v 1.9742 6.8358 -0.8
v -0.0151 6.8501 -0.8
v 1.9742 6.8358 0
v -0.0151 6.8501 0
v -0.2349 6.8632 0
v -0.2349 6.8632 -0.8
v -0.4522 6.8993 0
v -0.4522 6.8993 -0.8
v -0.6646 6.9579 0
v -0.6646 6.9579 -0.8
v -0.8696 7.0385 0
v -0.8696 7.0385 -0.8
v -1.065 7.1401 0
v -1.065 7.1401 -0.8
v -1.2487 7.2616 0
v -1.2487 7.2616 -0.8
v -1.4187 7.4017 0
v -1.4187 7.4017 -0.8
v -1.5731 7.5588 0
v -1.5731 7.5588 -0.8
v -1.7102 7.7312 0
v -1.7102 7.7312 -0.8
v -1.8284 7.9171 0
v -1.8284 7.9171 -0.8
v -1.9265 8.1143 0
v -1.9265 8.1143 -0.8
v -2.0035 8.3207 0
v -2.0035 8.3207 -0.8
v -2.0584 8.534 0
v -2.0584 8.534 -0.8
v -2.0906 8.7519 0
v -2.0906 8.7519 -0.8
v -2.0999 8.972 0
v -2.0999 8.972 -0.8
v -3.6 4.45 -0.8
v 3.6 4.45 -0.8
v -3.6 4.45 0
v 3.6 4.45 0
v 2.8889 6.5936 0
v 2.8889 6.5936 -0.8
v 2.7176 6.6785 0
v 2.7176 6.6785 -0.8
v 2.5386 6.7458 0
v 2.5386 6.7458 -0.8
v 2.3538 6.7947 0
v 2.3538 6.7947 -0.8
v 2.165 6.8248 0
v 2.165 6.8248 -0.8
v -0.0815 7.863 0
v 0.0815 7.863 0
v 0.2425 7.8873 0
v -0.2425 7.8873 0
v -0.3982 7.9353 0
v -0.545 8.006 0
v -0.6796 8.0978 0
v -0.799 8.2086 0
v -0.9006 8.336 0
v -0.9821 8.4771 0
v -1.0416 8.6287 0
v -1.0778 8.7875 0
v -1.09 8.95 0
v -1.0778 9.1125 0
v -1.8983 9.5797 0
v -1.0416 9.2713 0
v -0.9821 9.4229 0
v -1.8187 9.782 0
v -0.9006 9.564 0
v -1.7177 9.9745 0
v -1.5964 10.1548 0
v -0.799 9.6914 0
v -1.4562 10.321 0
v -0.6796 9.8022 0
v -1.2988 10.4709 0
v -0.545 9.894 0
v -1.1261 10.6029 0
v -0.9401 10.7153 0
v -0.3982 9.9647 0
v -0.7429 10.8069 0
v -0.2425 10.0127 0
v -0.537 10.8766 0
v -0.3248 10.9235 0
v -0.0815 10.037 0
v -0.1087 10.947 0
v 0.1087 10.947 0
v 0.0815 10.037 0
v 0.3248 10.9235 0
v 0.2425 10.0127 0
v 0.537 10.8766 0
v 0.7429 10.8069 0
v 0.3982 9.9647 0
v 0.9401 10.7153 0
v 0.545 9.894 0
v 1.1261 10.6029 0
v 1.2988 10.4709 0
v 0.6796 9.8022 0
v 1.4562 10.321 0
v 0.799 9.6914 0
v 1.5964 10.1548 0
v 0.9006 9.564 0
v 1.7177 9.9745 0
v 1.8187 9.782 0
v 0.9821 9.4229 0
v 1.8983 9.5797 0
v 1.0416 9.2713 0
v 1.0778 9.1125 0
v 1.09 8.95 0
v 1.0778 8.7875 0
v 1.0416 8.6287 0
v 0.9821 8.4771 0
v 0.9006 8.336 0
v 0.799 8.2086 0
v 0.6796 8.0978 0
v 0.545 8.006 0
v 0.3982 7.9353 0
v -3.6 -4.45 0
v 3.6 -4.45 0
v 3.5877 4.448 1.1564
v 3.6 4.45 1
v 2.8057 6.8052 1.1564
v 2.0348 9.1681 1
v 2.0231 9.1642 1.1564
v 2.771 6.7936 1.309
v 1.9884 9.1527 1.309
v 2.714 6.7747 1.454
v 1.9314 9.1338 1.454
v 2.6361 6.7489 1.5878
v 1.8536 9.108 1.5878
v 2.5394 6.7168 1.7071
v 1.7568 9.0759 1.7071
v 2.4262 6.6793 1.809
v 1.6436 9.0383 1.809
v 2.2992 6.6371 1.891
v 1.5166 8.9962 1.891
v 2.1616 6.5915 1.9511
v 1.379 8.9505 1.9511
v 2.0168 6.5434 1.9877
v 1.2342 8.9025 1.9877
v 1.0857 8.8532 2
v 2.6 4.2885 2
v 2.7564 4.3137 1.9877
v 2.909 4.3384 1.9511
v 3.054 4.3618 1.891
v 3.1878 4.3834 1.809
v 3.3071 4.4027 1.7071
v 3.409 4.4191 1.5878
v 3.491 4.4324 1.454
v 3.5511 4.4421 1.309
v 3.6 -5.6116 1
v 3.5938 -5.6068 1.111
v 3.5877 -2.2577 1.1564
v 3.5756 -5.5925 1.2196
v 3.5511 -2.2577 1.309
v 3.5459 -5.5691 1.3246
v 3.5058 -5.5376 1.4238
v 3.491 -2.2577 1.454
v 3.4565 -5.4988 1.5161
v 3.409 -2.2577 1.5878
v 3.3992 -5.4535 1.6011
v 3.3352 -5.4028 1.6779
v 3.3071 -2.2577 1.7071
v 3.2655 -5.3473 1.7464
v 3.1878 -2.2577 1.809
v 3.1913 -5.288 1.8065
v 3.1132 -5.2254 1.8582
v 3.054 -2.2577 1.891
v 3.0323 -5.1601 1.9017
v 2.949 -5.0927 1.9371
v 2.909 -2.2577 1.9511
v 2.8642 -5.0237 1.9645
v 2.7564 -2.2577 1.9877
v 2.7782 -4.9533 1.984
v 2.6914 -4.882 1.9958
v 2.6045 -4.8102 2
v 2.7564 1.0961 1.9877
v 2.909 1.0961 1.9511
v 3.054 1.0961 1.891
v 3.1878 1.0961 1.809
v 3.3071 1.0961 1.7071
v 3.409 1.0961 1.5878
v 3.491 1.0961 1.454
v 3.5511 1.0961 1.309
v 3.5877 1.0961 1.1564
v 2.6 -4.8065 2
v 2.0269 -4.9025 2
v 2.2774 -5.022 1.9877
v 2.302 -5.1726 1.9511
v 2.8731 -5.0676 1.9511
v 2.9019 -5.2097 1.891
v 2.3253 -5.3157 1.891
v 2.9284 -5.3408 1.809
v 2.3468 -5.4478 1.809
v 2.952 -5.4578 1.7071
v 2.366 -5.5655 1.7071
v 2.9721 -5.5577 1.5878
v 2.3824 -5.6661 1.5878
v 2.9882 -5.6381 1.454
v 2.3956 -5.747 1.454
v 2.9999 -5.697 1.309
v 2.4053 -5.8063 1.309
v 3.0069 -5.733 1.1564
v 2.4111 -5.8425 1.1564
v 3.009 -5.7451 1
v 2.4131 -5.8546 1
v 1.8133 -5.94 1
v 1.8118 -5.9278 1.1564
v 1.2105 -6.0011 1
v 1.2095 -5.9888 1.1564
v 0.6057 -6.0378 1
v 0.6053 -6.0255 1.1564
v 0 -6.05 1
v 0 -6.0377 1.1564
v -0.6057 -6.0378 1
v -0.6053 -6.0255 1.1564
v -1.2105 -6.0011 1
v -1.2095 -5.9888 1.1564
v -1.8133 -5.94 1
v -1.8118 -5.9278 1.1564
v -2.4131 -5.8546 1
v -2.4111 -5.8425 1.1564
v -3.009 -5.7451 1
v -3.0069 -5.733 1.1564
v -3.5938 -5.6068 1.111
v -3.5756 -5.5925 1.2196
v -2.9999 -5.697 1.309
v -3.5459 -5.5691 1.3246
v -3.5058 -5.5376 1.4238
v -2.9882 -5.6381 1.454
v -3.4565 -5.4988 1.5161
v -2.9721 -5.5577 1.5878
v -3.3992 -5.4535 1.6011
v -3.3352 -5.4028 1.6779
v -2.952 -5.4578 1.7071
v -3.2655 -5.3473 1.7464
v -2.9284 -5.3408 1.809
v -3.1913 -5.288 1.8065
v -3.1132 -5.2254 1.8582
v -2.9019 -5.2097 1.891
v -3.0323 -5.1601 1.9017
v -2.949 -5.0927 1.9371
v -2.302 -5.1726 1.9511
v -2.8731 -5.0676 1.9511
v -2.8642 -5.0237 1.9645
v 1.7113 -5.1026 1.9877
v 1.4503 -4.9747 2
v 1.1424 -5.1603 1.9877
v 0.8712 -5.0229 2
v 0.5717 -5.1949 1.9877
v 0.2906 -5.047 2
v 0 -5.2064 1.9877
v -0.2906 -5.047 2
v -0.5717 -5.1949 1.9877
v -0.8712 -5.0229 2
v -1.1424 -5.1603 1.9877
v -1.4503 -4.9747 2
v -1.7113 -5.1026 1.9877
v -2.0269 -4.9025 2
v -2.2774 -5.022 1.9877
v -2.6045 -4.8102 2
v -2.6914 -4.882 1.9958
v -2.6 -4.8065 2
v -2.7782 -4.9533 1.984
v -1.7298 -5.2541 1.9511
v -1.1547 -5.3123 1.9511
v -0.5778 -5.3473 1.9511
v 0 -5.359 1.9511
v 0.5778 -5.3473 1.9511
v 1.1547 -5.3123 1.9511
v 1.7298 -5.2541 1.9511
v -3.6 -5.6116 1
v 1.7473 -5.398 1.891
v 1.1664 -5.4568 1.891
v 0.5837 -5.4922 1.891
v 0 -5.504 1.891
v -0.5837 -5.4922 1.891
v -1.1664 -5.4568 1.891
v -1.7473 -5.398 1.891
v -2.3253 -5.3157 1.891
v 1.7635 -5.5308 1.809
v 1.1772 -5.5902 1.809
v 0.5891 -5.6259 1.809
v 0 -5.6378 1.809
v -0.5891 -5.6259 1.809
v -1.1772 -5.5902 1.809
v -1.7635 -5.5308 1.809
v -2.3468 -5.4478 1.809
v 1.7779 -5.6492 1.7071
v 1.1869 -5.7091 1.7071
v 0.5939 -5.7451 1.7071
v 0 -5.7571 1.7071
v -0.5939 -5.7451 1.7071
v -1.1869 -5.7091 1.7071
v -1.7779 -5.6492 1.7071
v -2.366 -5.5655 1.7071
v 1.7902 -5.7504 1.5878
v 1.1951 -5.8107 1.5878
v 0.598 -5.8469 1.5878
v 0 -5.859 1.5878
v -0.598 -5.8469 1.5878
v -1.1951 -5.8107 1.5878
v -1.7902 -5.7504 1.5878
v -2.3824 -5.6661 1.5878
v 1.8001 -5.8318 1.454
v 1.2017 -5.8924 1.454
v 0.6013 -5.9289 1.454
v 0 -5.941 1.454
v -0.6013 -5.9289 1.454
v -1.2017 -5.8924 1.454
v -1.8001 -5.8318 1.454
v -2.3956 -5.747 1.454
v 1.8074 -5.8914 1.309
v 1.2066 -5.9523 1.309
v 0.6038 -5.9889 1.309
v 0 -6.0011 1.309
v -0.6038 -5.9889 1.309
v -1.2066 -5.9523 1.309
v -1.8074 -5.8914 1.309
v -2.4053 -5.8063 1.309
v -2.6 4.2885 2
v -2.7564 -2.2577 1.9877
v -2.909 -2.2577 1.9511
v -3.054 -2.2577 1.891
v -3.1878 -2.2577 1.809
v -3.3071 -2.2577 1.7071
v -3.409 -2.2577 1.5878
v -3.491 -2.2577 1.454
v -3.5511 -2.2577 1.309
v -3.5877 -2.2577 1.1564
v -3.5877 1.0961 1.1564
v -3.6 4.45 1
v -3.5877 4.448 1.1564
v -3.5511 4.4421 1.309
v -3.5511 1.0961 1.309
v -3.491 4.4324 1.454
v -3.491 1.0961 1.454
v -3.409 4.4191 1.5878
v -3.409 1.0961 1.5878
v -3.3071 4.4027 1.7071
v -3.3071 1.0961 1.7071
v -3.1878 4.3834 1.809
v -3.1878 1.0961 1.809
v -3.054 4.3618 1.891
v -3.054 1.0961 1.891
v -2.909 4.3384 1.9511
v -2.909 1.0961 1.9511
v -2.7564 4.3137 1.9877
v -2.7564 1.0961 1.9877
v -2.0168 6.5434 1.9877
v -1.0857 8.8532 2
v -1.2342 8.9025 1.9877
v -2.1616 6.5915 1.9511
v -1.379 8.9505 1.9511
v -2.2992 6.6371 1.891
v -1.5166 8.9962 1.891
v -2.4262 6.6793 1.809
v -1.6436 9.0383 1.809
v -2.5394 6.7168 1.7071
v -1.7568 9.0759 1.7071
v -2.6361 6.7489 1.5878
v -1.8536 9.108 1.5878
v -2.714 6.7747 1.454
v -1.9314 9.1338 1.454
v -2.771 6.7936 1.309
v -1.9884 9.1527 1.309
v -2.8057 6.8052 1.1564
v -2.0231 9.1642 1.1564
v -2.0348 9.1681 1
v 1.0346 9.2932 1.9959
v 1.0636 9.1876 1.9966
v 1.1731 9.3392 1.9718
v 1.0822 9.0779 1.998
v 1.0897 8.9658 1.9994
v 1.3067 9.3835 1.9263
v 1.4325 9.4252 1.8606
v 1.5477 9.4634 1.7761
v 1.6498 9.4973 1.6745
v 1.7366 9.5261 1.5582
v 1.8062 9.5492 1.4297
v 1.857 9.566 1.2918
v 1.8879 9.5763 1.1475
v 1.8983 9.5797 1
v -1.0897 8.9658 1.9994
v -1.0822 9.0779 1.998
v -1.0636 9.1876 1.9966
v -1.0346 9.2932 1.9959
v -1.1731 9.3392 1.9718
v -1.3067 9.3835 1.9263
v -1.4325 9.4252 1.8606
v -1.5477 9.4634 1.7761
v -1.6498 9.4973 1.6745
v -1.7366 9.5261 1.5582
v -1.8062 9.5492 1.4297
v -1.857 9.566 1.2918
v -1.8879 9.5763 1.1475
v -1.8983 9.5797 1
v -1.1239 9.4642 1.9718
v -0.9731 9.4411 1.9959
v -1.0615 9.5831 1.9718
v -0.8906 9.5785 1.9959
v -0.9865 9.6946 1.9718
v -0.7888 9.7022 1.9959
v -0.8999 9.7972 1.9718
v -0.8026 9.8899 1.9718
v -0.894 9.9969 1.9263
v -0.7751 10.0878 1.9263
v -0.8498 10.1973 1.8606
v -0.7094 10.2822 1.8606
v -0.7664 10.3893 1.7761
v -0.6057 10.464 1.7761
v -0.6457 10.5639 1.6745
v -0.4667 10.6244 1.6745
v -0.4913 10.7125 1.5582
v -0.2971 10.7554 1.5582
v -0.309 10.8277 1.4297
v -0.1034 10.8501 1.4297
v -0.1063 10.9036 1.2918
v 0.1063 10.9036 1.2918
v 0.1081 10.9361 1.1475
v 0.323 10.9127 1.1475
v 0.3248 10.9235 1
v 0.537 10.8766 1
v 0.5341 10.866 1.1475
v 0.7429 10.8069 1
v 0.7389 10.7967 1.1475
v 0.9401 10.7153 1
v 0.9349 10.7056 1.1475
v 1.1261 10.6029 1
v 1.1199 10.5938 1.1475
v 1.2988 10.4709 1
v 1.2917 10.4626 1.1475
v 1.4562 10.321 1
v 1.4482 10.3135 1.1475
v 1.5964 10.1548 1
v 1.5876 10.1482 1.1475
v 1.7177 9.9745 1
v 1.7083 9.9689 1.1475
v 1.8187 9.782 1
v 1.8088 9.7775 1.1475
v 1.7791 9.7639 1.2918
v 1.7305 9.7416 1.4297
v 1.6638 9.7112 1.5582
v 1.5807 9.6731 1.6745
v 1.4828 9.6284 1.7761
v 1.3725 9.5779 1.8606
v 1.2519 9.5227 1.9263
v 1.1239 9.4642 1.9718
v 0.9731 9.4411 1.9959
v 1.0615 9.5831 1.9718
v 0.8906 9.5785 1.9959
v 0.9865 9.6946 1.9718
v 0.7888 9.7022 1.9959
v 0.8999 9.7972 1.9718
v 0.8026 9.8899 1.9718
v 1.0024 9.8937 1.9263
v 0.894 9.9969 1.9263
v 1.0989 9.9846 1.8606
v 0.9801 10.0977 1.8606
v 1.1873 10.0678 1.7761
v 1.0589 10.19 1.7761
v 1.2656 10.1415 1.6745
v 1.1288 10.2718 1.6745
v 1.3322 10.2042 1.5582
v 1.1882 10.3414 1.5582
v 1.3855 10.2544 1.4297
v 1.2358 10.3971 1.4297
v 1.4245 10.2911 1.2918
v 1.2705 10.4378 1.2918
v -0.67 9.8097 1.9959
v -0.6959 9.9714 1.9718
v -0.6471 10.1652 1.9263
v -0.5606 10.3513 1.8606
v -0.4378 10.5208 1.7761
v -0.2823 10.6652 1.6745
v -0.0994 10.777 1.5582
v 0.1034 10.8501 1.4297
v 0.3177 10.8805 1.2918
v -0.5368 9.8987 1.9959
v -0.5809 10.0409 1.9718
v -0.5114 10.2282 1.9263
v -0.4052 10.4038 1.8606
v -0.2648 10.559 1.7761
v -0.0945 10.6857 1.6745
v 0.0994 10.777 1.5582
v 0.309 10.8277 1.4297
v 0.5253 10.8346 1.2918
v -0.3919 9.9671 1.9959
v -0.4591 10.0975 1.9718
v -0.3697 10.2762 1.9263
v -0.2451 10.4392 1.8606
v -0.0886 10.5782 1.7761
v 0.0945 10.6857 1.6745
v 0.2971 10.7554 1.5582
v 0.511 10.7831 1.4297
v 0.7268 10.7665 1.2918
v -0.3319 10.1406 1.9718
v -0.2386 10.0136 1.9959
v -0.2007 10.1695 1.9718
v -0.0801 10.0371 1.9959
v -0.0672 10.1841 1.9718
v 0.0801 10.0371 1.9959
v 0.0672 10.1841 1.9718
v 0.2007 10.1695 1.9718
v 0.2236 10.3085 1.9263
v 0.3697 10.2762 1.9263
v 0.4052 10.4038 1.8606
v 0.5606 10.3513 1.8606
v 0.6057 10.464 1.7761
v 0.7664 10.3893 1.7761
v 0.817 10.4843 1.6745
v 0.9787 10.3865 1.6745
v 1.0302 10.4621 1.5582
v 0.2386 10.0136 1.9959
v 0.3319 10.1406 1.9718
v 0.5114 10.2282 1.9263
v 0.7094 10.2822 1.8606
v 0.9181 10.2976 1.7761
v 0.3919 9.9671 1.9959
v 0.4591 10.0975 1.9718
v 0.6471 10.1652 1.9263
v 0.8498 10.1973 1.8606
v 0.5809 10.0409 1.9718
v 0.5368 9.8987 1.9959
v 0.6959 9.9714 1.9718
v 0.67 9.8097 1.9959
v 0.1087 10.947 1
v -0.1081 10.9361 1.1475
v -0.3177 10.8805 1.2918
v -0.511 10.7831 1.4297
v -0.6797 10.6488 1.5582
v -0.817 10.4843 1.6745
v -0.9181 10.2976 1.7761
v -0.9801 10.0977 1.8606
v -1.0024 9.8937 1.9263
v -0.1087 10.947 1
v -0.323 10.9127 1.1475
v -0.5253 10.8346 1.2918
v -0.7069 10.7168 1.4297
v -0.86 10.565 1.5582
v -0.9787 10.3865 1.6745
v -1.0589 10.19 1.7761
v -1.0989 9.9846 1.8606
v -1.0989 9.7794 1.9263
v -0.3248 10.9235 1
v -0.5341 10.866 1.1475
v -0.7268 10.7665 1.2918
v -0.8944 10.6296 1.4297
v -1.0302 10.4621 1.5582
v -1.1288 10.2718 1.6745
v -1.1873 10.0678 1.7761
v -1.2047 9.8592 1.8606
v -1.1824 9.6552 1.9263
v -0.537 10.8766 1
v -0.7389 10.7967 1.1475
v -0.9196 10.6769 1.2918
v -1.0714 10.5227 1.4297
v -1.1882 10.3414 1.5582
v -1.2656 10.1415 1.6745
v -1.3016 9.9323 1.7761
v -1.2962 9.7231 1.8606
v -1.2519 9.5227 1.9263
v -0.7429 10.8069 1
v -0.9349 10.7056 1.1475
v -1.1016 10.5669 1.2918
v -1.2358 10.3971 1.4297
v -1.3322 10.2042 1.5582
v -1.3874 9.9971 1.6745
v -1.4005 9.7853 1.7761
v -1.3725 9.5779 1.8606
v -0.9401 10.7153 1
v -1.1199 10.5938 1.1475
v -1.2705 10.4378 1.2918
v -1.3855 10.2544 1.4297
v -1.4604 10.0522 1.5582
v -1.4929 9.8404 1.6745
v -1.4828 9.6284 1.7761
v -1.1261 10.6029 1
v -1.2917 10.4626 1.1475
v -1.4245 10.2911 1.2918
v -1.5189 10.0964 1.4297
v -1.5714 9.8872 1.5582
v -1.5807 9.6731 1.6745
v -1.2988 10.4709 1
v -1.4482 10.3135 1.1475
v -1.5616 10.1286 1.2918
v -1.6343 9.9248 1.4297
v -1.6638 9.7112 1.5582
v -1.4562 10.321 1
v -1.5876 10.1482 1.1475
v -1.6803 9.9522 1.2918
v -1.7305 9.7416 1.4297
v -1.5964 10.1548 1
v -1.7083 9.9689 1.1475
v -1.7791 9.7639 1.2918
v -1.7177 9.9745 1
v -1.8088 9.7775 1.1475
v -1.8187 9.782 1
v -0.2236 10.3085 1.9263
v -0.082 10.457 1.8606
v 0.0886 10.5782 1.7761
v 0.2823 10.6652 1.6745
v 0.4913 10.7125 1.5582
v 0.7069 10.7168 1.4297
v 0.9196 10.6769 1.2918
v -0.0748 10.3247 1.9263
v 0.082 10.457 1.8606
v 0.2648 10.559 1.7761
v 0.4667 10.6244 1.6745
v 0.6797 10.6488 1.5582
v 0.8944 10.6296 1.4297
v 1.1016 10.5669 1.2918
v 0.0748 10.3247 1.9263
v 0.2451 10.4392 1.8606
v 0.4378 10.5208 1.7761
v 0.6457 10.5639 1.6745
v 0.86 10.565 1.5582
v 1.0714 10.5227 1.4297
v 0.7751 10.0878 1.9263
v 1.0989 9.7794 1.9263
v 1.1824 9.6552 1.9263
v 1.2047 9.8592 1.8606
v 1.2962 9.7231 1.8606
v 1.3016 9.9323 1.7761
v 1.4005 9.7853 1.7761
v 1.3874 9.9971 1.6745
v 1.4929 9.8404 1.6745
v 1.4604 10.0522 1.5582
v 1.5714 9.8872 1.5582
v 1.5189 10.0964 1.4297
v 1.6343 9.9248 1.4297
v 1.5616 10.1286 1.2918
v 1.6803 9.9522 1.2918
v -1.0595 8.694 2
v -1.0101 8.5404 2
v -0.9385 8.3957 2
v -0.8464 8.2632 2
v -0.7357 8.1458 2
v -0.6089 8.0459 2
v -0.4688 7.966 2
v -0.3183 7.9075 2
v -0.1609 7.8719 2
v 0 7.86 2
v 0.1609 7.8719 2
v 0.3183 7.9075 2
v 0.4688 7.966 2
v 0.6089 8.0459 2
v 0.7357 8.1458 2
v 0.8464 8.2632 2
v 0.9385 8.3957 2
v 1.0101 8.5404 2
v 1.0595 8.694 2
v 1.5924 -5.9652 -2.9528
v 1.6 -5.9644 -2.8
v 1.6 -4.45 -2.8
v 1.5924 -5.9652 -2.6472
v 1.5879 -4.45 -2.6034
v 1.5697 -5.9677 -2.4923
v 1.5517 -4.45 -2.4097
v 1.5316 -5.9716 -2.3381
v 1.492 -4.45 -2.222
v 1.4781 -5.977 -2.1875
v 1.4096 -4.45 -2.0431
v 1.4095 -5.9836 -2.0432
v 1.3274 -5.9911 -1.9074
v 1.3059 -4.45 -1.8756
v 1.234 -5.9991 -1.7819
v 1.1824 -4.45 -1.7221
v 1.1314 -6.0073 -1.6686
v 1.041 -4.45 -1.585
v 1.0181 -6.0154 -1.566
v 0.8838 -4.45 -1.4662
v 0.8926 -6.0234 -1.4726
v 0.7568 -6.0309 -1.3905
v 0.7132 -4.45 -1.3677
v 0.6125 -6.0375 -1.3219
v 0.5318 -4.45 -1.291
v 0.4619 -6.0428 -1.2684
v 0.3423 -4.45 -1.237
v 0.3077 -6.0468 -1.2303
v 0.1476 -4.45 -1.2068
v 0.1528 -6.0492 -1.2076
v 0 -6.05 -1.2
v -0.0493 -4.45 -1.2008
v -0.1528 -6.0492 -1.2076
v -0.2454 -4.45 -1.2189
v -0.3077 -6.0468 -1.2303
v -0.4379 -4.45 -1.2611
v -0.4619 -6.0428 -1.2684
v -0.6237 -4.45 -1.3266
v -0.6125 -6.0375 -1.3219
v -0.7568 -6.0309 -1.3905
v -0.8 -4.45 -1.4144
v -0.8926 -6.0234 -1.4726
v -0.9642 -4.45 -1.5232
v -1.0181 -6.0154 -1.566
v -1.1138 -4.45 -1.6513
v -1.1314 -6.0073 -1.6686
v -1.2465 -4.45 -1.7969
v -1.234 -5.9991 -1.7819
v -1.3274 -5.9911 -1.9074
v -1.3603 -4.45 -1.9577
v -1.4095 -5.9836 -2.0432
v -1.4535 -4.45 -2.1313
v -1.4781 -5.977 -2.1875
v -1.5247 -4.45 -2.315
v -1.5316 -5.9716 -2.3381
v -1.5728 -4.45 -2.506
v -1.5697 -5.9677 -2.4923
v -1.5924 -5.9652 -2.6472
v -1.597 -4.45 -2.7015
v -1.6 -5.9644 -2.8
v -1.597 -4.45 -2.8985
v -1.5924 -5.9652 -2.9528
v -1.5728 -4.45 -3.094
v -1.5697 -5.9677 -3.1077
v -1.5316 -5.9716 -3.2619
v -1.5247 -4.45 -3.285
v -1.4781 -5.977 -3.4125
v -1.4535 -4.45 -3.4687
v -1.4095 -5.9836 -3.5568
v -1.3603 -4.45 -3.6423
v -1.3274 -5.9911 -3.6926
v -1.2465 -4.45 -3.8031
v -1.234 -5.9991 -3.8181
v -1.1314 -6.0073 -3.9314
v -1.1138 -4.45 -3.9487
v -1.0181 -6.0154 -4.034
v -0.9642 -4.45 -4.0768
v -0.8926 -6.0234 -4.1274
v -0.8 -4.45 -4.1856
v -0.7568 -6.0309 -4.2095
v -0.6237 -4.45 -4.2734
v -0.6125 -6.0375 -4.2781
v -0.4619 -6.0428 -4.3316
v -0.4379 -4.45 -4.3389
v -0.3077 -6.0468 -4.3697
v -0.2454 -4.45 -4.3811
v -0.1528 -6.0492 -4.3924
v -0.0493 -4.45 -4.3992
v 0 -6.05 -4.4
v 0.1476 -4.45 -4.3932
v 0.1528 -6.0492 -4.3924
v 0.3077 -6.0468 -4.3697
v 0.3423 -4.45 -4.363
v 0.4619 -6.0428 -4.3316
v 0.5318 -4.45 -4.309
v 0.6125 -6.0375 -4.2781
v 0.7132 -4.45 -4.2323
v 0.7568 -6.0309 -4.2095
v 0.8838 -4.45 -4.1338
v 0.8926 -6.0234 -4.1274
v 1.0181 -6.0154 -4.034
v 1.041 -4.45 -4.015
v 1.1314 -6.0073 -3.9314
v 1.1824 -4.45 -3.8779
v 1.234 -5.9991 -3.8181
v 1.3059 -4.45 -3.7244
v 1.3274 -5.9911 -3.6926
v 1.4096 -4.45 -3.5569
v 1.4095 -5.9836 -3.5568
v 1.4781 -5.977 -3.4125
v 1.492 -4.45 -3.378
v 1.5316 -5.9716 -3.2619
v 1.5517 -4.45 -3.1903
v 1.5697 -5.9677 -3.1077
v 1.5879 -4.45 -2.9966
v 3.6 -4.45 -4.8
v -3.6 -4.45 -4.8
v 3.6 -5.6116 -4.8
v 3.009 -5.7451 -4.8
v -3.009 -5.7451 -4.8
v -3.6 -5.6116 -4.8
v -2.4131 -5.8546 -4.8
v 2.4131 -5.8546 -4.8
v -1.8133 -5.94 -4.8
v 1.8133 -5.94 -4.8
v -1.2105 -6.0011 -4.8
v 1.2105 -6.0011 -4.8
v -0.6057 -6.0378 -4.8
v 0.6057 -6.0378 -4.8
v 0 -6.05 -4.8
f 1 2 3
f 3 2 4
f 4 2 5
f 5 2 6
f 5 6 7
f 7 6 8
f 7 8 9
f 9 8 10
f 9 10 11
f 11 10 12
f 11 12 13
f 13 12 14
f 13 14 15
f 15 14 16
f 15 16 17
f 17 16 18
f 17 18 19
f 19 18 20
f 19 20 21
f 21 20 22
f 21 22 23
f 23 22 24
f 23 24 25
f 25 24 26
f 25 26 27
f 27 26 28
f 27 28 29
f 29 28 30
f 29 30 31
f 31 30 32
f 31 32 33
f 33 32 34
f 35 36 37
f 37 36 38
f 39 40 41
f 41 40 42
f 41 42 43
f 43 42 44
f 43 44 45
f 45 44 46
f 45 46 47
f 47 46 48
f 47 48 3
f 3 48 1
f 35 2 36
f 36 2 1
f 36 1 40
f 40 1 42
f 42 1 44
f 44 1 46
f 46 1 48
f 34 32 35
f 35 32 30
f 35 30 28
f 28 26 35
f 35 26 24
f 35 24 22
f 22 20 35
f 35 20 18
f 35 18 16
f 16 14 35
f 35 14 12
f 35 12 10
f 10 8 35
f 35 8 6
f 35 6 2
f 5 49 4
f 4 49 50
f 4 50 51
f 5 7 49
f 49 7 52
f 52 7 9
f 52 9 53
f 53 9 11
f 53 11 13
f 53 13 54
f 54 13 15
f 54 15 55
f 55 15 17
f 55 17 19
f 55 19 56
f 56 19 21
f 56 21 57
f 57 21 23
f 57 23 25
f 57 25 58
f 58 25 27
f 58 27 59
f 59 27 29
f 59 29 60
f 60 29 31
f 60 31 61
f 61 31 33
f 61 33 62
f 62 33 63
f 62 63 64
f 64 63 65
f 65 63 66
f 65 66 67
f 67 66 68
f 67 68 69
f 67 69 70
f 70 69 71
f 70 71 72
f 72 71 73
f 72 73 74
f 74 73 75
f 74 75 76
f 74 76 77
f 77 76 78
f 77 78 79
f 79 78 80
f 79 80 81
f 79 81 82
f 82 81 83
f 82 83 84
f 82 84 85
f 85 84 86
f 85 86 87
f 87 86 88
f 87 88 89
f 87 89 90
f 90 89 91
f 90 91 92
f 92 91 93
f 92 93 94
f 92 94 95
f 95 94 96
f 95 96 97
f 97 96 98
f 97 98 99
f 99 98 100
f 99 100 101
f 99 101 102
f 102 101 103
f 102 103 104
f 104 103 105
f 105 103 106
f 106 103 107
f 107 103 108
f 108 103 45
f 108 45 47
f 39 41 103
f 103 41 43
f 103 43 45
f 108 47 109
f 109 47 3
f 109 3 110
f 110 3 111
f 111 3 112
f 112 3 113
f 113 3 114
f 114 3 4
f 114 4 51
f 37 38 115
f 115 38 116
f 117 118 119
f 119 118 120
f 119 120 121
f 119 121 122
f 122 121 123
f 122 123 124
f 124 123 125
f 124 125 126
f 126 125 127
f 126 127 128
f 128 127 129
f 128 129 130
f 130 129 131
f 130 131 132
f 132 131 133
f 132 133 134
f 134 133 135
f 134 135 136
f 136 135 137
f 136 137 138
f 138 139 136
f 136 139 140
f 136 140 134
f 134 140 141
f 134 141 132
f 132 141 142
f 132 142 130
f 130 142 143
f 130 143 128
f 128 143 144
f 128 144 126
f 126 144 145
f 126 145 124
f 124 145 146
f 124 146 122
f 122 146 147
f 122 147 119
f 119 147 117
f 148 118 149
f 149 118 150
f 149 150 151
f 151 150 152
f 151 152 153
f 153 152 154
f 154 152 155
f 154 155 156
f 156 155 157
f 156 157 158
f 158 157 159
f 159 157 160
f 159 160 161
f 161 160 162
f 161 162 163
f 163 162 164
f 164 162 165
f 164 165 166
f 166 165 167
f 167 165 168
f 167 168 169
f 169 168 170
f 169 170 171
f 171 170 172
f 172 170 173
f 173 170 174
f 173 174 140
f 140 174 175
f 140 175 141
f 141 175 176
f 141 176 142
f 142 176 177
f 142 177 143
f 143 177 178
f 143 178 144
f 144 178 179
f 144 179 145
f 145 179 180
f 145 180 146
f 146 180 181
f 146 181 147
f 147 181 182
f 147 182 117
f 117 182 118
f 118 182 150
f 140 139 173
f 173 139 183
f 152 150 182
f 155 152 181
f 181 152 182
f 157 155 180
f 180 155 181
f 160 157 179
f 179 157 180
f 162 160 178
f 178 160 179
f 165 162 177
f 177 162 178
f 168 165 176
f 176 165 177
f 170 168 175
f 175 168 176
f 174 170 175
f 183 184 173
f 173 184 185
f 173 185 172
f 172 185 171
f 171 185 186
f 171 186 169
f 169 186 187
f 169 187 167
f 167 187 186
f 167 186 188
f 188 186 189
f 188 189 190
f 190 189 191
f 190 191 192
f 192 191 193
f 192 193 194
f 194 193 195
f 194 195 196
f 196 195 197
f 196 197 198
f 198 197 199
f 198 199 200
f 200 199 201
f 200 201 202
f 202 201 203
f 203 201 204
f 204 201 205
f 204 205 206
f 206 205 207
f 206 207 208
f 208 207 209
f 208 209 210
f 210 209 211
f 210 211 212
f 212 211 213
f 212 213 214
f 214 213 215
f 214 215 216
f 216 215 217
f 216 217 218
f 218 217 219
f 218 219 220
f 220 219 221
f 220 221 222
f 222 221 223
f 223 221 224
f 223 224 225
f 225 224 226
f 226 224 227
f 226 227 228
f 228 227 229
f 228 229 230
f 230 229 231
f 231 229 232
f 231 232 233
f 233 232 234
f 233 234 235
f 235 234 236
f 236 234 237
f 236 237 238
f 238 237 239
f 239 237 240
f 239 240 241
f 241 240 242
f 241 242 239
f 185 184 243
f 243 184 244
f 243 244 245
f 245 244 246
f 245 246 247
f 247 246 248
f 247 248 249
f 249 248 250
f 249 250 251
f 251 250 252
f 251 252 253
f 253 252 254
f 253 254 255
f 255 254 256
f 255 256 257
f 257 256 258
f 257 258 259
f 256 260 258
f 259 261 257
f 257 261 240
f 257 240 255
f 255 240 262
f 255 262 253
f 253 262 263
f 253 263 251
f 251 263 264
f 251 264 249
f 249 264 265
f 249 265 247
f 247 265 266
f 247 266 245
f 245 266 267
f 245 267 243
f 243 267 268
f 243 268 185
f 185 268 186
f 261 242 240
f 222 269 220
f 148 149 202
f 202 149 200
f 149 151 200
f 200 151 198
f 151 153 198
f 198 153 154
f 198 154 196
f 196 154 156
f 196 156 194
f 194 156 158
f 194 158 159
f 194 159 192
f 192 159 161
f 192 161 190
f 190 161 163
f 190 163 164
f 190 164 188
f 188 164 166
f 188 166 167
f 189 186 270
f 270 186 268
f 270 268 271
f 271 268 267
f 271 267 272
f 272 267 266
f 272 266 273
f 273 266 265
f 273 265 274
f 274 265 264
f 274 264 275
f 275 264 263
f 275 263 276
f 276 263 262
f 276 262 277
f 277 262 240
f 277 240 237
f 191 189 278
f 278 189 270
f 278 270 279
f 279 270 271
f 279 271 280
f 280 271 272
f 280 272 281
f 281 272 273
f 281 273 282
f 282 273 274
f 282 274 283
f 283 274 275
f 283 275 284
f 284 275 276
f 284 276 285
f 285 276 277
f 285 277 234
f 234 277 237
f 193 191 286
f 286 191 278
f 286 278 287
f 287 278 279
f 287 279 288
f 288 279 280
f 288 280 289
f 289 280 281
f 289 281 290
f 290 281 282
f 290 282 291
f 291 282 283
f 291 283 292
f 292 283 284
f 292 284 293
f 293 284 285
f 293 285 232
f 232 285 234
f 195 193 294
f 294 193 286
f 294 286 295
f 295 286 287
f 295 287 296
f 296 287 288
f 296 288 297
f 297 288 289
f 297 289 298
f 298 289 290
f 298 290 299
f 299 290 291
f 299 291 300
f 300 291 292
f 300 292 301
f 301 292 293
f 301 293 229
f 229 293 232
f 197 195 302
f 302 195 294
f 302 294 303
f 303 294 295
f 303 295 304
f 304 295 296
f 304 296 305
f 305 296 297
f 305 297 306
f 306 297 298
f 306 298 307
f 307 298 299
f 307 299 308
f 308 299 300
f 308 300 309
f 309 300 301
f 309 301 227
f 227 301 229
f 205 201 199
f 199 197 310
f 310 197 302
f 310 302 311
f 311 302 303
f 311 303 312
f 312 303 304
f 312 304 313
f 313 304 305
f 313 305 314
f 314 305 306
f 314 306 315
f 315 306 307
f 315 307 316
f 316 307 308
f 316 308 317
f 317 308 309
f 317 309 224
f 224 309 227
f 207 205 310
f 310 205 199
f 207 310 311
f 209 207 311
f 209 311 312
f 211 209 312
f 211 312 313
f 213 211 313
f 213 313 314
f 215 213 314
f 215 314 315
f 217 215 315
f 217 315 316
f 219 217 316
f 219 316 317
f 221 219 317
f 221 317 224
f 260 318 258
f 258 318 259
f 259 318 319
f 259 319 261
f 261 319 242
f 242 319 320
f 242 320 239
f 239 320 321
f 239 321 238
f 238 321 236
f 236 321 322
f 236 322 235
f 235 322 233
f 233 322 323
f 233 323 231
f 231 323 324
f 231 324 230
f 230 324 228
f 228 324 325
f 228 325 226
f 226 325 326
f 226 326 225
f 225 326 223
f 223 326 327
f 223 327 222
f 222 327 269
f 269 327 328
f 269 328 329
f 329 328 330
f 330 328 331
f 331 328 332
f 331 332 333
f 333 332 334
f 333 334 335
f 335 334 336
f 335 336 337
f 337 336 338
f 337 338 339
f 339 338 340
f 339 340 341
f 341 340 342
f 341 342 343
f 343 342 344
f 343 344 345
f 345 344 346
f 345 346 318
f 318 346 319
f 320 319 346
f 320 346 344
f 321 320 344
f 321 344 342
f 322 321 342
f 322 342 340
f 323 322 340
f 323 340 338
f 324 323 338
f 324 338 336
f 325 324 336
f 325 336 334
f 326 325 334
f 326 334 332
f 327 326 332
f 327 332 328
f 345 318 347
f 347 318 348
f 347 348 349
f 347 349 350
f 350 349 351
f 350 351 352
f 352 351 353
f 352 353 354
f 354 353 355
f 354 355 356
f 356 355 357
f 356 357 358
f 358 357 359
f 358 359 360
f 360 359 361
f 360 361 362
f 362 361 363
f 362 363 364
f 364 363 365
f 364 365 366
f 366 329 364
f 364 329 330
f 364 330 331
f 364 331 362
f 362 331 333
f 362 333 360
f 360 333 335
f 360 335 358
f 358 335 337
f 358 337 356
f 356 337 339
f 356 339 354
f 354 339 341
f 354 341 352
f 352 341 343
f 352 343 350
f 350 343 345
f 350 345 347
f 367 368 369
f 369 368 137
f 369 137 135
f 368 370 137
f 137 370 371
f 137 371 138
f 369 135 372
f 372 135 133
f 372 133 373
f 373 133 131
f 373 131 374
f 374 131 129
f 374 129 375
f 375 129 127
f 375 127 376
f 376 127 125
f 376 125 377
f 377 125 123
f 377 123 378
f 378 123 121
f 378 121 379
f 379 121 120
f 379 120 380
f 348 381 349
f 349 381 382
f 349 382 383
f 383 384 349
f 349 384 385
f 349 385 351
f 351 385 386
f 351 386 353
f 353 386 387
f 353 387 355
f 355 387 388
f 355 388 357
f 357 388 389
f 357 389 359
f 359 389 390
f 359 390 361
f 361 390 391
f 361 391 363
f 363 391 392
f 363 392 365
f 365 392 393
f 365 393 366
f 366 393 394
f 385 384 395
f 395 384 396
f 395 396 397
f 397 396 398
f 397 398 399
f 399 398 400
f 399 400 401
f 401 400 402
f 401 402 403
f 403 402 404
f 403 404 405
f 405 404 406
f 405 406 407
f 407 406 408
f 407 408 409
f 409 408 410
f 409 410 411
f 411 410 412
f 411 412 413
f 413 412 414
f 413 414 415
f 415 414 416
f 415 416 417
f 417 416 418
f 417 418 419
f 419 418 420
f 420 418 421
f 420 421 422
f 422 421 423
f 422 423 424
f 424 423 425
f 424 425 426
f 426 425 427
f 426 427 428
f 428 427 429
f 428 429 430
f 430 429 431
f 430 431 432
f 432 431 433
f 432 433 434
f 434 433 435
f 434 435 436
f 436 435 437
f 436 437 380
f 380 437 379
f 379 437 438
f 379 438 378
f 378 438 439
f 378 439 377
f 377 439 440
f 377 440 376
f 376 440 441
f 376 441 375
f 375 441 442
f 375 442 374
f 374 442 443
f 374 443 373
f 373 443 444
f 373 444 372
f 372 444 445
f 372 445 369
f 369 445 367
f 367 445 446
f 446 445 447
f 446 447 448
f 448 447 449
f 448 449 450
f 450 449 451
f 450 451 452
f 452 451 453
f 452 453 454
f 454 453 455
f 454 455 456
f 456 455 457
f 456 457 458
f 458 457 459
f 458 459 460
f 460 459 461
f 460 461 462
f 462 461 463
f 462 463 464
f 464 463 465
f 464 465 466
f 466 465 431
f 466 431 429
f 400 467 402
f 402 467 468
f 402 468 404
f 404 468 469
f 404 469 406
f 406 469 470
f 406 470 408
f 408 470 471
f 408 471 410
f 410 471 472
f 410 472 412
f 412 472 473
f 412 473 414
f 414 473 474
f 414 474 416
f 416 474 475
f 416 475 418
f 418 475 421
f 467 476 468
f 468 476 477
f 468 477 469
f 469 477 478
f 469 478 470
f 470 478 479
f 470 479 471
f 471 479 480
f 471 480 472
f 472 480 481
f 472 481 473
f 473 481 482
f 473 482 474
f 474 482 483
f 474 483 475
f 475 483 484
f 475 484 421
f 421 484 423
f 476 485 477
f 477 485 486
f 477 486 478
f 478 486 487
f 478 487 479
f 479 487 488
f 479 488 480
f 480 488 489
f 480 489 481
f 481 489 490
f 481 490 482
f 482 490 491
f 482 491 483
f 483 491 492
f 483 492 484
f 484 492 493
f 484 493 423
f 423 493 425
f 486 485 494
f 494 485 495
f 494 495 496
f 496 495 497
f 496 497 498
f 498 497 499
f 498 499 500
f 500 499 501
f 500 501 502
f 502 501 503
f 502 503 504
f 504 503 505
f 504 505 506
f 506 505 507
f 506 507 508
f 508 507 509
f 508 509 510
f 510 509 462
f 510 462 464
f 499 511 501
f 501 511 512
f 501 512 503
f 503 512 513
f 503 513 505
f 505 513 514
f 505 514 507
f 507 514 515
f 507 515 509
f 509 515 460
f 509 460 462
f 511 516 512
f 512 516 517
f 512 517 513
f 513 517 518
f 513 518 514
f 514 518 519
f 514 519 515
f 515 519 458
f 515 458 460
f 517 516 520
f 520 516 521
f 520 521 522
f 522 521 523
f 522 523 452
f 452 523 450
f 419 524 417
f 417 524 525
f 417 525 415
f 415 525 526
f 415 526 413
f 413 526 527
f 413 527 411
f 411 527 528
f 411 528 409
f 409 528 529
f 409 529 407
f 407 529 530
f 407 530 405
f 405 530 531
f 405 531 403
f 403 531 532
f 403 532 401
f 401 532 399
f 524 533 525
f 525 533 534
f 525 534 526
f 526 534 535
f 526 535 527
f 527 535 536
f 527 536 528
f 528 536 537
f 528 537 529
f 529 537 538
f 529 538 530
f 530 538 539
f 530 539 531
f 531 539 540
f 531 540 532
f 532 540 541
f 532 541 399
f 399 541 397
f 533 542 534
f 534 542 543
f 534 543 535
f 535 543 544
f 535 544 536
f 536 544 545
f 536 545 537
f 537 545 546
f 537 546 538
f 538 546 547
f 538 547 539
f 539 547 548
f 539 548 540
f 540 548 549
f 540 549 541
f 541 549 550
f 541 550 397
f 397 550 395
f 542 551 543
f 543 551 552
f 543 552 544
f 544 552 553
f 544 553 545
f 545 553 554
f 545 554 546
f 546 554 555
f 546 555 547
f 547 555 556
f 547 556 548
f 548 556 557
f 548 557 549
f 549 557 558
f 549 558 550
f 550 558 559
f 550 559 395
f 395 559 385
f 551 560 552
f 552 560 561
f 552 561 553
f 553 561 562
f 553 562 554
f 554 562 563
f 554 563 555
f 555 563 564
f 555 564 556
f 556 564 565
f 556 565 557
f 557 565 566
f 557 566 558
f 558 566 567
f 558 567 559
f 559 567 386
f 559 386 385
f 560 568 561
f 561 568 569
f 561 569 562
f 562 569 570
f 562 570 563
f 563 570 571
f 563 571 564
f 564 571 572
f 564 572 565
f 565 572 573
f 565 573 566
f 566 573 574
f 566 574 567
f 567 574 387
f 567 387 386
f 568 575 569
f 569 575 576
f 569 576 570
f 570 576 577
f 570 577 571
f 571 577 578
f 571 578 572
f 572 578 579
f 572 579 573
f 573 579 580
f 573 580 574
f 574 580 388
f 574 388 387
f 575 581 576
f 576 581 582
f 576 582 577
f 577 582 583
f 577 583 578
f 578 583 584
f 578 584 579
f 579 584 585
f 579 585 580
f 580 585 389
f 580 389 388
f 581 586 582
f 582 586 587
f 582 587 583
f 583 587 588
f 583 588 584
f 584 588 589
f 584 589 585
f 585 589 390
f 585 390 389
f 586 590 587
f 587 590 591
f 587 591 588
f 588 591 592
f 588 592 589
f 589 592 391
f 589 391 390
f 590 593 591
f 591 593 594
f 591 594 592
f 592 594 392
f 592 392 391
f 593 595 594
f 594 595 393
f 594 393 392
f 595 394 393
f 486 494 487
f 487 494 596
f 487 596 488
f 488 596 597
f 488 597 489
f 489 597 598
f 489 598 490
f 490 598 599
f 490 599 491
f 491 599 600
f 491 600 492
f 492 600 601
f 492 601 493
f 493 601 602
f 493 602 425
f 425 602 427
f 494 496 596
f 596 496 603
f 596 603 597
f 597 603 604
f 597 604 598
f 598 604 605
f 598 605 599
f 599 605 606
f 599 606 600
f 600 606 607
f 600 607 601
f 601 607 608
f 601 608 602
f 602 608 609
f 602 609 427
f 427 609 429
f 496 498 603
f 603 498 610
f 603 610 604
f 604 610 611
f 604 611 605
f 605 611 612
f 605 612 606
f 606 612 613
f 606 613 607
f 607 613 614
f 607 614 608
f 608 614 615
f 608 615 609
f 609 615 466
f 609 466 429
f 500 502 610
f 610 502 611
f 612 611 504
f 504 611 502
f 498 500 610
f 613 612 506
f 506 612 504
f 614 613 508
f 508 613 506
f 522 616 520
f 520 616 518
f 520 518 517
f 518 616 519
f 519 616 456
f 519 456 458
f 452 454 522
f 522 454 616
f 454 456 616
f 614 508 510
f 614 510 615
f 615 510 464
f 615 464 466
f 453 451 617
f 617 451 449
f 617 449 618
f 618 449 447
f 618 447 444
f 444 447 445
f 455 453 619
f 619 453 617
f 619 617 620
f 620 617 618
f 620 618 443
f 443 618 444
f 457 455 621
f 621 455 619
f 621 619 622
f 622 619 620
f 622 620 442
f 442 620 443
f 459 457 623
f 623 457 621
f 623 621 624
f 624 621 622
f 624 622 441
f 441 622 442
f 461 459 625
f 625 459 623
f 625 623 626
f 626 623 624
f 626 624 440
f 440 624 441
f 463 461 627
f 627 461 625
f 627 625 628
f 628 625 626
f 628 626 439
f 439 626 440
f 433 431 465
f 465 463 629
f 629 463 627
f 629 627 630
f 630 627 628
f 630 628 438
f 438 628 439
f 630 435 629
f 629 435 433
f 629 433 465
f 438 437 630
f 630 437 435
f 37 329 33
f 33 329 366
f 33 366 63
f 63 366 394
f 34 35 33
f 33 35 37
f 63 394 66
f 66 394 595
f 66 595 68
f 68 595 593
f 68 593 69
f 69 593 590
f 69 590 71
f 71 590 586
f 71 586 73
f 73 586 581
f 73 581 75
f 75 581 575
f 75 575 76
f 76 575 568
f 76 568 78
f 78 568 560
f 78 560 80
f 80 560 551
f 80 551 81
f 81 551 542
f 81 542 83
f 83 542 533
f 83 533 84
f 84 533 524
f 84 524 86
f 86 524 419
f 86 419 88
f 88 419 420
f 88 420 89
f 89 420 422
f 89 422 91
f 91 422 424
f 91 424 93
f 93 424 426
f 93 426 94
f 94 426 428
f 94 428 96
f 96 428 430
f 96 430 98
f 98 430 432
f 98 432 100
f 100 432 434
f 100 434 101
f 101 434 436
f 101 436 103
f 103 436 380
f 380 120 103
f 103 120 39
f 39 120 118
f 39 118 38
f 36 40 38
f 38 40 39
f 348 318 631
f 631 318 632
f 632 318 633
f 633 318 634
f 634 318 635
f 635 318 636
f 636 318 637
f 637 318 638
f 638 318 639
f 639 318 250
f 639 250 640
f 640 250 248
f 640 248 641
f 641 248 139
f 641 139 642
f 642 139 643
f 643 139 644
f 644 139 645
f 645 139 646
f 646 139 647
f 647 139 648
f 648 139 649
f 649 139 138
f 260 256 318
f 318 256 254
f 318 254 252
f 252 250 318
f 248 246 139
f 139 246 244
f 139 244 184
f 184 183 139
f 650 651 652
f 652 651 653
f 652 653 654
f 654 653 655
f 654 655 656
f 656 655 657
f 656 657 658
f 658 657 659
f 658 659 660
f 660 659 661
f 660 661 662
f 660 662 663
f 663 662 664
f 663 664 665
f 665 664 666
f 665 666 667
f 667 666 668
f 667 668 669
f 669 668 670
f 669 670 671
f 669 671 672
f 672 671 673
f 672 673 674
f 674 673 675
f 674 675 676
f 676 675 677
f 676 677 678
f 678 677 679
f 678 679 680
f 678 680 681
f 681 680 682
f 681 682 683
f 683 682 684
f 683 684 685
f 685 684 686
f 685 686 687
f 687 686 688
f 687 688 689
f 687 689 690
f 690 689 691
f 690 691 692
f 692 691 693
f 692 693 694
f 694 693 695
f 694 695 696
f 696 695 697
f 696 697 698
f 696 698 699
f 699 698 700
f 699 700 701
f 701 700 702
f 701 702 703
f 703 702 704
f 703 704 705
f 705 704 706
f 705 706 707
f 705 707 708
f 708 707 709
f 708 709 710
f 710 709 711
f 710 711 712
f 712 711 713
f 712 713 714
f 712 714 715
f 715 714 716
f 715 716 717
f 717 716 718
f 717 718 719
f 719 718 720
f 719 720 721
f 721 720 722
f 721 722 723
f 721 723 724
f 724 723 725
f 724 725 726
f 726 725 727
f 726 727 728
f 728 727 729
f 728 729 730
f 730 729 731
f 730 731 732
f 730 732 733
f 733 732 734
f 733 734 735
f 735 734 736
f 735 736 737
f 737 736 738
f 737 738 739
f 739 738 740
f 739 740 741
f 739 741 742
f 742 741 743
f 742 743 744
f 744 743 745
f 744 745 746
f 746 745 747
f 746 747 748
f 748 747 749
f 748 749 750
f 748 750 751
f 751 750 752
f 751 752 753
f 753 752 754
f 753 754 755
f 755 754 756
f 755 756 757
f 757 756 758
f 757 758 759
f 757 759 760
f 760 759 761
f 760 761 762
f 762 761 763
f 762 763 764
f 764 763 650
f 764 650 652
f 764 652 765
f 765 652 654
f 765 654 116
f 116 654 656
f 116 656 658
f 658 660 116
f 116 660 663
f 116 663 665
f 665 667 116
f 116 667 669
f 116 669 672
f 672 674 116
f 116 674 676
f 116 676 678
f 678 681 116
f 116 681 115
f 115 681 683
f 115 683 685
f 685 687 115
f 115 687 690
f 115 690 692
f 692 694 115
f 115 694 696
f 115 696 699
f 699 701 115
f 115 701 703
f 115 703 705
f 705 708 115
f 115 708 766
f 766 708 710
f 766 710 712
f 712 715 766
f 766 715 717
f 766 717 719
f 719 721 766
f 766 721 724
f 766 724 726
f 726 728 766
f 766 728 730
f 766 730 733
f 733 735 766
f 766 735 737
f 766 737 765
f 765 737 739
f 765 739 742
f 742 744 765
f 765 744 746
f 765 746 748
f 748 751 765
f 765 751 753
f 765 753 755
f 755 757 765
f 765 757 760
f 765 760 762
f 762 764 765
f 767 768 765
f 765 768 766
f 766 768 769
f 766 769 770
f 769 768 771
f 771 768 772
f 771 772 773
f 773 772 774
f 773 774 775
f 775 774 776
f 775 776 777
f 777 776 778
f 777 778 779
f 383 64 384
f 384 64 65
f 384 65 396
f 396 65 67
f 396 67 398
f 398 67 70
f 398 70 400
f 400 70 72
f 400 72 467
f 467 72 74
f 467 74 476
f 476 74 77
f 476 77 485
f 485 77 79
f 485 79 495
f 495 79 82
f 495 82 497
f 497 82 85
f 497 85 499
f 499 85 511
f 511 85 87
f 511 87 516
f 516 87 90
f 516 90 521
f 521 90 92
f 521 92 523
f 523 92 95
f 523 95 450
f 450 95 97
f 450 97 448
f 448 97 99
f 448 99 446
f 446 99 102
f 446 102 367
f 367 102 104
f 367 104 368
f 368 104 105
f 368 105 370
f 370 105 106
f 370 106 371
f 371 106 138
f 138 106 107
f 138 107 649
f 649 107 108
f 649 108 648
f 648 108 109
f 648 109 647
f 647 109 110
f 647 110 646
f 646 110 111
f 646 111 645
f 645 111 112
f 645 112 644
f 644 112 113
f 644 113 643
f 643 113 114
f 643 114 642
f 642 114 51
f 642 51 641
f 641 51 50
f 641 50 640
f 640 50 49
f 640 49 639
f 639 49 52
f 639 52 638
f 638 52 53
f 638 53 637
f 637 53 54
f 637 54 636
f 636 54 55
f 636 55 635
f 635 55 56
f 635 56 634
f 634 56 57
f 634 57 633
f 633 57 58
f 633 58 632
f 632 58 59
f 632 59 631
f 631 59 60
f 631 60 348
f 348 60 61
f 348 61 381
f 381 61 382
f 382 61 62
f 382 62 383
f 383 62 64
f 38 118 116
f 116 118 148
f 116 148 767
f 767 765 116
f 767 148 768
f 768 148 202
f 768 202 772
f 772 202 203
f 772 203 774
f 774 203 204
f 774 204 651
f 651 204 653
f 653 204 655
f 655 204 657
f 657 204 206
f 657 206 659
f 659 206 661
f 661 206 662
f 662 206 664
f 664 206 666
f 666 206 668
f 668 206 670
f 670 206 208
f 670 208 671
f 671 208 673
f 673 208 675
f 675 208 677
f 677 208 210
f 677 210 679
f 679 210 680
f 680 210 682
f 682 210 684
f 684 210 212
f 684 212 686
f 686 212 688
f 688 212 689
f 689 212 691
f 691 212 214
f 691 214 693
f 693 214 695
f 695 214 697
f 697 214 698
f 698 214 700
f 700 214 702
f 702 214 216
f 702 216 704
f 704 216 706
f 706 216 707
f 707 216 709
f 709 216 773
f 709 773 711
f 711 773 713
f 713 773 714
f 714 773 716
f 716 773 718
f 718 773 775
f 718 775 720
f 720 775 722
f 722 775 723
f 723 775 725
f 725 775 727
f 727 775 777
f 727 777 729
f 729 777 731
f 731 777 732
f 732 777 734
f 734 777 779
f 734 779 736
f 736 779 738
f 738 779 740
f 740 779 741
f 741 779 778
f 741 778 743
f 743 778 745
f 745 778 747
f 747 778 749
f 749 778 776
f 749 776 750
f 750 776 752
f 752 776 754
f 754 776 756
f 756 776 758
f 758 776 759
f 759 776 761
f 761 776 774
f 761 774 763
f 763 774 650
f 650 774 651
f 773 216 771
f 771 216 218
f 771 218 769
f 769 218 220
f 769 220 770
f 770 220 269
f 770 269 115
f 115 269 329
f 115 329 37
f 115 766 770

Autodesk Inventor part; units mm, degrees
ref_plane "YZ Plane" through (0, 0, 0) normal (1, 0, 0) x (0, 1, 0)
sketch "Sketch1" plane through (0, 0, 0) normal (0, 0, 1) x (1, 0, 0)
  circle A0 centre (0, 8.95) radius 1.09 projected
  arc A1 (1.662, 7.8375) -> (-0.0143, 6.9501) centre (0, 8.95) ccw projected
  arc A2 (1.8983, 9.5797) -> (-1.8983, 9.5797) centre (0, 8.95) ccw
  line L0 (3.6, 4.45) -> (3.6, -5.6116)
  arc A3 (-3.6, -5.6116) -> (3.6, -5.6116) centre (0, 8.95) ccw
  circle A4 centre (0, 8.95) radius 4.08 projected
  circle A5 centre (0, 8.95) radius 15 projected
  line L1 (2.5, -0.05) -> (2.5, 4.45) projected
  line L2 (2.5, 4.45) -> (3.6, 4.45) projected
  line L3 (3.6, 4.45) -> (3.6, -4.45) projected
  line L4 (3.6, -4.45) -> (-3.6, -4.45) projected
  line L5 (-3.6, -4.45) -> (-3.6, 4.45) projected
  line L6 (-3.6, 4.45) -> (-2.5, 4.45) projected
  line L7 (-2.5, 4.45) -> (-2.5, -0.05) projected
  line L8 (-3.6, -5.6116) -> (-3.6, 4.45)
  line L9 (-3.6, 4.45) -> (-1.8983, 9.5797)
  line L10 (3.6, 4.45) -> (1.8983, 9.5797)
  line L11 (-2.5, -0.05) -> (2.5, -0.05) projected
  point P0 (0, 0)
  point P1 (-1.8983, 9.5797)
extrude "Extrusion1" add sketch "Sketch1" along normal blind 2 contours L10 A4 L9 A1 | L10 L2 L1 L11 L7 L6 L9 A4 | L0 L4 L5 L6 L7 L11 L1 L2 | L0 A3 L8 L4 picked at (1.9915, 8.1578)
sketch "Sketch2" plane through (0, 0, 0) normal (0, 0, -1) x (-1, 0, 0)
  line L0 (-3.6, -4.45) -> (3.6, -4.45) projected
  line L1 (-3.6, 4.45) -> (-1.8983, 9.5797) projected
  line L2 (-3.6, -5.6116) -> (-3.6, 4.45) projected
  arc A0 (-3.6, -5.6116) -> (3.6, -5.6116) centre (0, 8.95) ccw projected
  line L3 (3.6, 4.45) -> (3.6, -5.6116) projected
  line L4 (1.8983, 9.5797) -> (3.6, 4.45) projected
  arc A1 (1.8983, 9.5797) -> (-1.8983, 9.5797) centre (0, 8.95) ccw projected
  circle A2 centre (0, 8.95) radius 1.09 projected
  point P0 (0, 0)
ref_plane "Work Plane1" through (-15.2152, -6.2652, -4.8) normal (0, 0, 1) x (1, 0, 0)
extrude "Extrusion2" add sketch "Sketch2" along normal up to surface (4.8 mm away) contours L0 L3 A0 L2
sketch "Sketch3" plane through (-3.6, -4.45, 0) normal (0, 1, 0) x (1, 0, 0)
  circle A0 centre (3.6, 2.8) radius 1.6 projected
  point P0 (3.6, 0)
extrude "Extrusion3" cut sketch "Sketch3" against normal blind 10
fillet "Fillet1" radius 1 6 edges at (2.7491, 7.0149, 2) (3.6, -0.5808, 2) (0, -6.05, 2) (-3.6, -0.5808, 2) (-2.7491, 7.0149, 2) (0, 10.95, 2)
sketch "Sketch4" plane through (0, 0, 0) normal (0, 0, -1) x (-1, 0, 0)
  point P0 (0, 0)
sketch "Sketch5" plane through (0, 0, 0) normal (0, 0, -1) x (-1, 0, 0)
  line L0 (-3.6, 4.45) -> (3.6, 4.45) projected
  arc A0 (0.0143, 6.9501) -> (-1.662, 7.8375) centre (0, 8.95) ccw projected
  circle A1 centre (0, 8.95) radius 1.09 projected
  line L1 (-3.8923, -4.5783) -> (-11.4921, -4.6328) projected
  line L2 (-11.4921, -4.6328) -> (-11.5941, 9.5788) projected
  line L3 (-3.3887, 7.8251) -> (-11.5941, 9.5788) projected
  line L4 (-1.662, 7.8375) -> (-3.3887, 7.8251) projected
  arc A2 (0.0143, 6.9501) -> (-1.662, 7.8375) centre (0, 8.95) ccw projected
  line L5 (0.0143, 6.9501) -> (-1.9749, 6.9358) projected
  arc A3 (-1.9749, 6.9358) -> (-3.9605, 4.9215) centre (-1.9605, 4.9358) ccw projected
  line L6 (-3.9605, 4.9215) -> (-3.8923, -4.5783) projected
  line L7 (-10.8065, -2.6278) -> (-4.6067, -2.5833) projected
  line L8 (-4.6067, -2.5833) -> (-4.6246, -0.0834) projected
  line L9 (-4.6246, -0.0834) -> (-10.8244, -0.1279) projected
  line L10 (-10.8244, -0.1279) -> (-10.8065, -2.6278) projected
  line L11 (-3.6, 4.45) -> (-1.8983, 9.5797) projected
  line L12 (-3.6, 4.45) -> (-2.8435, 6.7304)
  line L13 (1.8983, 9.5797) -> (2.0348, 9.1681) projected
  line L14 (3.6, 4.45) -> (1.8983, 9.5797)
  arc A4 (0.0151, 6.8501) -> (-1.7451, 7.7818) centre (0, 8.95) ccw
  line L15 (0.0151, 6.8501) -> (-1.9742, 6.8358)
  arc A5 (-1.9742, 6.8358) -> (-3.8605, 4.9222) centre (-1.9605, 4.9358) ccw
  line L16 (-3.8605, 4.9222) -> (-3.7916, -4.6775)
  line L17 (-3.7916, -4.6775) -> (-11.5914, -4.7335)
  line L18 (-11.5914, -4.7335) -> (-11.695, 9.7026)
  line L19 (-11.695, 9.7026) -> (-3.3785, 7.9252)
  line L20 (-3.3785, 7.9252) -> (-1.6627, 7.9375)
  point P0 (0, 0)
  point P1 (2.0999, 8.972)
  point P2 (0.0151, 6.8501)
  point P3 (-2.8889, 6.5936)
  dimension "d7" = 0.1
  dimension "d8" = 0.1
ref_plane "Work Plane2" through (-2.5323, -0.0859, -0.8) normal (0, 0, -1) x (0, 1, 0)
extrude "Extrusion4" add sketch "Sketch5" along normal up to surface (0.8 mm away) contours L11 A5 L15 A4 L14 L0
properties part number "Tool Head Clamp"
